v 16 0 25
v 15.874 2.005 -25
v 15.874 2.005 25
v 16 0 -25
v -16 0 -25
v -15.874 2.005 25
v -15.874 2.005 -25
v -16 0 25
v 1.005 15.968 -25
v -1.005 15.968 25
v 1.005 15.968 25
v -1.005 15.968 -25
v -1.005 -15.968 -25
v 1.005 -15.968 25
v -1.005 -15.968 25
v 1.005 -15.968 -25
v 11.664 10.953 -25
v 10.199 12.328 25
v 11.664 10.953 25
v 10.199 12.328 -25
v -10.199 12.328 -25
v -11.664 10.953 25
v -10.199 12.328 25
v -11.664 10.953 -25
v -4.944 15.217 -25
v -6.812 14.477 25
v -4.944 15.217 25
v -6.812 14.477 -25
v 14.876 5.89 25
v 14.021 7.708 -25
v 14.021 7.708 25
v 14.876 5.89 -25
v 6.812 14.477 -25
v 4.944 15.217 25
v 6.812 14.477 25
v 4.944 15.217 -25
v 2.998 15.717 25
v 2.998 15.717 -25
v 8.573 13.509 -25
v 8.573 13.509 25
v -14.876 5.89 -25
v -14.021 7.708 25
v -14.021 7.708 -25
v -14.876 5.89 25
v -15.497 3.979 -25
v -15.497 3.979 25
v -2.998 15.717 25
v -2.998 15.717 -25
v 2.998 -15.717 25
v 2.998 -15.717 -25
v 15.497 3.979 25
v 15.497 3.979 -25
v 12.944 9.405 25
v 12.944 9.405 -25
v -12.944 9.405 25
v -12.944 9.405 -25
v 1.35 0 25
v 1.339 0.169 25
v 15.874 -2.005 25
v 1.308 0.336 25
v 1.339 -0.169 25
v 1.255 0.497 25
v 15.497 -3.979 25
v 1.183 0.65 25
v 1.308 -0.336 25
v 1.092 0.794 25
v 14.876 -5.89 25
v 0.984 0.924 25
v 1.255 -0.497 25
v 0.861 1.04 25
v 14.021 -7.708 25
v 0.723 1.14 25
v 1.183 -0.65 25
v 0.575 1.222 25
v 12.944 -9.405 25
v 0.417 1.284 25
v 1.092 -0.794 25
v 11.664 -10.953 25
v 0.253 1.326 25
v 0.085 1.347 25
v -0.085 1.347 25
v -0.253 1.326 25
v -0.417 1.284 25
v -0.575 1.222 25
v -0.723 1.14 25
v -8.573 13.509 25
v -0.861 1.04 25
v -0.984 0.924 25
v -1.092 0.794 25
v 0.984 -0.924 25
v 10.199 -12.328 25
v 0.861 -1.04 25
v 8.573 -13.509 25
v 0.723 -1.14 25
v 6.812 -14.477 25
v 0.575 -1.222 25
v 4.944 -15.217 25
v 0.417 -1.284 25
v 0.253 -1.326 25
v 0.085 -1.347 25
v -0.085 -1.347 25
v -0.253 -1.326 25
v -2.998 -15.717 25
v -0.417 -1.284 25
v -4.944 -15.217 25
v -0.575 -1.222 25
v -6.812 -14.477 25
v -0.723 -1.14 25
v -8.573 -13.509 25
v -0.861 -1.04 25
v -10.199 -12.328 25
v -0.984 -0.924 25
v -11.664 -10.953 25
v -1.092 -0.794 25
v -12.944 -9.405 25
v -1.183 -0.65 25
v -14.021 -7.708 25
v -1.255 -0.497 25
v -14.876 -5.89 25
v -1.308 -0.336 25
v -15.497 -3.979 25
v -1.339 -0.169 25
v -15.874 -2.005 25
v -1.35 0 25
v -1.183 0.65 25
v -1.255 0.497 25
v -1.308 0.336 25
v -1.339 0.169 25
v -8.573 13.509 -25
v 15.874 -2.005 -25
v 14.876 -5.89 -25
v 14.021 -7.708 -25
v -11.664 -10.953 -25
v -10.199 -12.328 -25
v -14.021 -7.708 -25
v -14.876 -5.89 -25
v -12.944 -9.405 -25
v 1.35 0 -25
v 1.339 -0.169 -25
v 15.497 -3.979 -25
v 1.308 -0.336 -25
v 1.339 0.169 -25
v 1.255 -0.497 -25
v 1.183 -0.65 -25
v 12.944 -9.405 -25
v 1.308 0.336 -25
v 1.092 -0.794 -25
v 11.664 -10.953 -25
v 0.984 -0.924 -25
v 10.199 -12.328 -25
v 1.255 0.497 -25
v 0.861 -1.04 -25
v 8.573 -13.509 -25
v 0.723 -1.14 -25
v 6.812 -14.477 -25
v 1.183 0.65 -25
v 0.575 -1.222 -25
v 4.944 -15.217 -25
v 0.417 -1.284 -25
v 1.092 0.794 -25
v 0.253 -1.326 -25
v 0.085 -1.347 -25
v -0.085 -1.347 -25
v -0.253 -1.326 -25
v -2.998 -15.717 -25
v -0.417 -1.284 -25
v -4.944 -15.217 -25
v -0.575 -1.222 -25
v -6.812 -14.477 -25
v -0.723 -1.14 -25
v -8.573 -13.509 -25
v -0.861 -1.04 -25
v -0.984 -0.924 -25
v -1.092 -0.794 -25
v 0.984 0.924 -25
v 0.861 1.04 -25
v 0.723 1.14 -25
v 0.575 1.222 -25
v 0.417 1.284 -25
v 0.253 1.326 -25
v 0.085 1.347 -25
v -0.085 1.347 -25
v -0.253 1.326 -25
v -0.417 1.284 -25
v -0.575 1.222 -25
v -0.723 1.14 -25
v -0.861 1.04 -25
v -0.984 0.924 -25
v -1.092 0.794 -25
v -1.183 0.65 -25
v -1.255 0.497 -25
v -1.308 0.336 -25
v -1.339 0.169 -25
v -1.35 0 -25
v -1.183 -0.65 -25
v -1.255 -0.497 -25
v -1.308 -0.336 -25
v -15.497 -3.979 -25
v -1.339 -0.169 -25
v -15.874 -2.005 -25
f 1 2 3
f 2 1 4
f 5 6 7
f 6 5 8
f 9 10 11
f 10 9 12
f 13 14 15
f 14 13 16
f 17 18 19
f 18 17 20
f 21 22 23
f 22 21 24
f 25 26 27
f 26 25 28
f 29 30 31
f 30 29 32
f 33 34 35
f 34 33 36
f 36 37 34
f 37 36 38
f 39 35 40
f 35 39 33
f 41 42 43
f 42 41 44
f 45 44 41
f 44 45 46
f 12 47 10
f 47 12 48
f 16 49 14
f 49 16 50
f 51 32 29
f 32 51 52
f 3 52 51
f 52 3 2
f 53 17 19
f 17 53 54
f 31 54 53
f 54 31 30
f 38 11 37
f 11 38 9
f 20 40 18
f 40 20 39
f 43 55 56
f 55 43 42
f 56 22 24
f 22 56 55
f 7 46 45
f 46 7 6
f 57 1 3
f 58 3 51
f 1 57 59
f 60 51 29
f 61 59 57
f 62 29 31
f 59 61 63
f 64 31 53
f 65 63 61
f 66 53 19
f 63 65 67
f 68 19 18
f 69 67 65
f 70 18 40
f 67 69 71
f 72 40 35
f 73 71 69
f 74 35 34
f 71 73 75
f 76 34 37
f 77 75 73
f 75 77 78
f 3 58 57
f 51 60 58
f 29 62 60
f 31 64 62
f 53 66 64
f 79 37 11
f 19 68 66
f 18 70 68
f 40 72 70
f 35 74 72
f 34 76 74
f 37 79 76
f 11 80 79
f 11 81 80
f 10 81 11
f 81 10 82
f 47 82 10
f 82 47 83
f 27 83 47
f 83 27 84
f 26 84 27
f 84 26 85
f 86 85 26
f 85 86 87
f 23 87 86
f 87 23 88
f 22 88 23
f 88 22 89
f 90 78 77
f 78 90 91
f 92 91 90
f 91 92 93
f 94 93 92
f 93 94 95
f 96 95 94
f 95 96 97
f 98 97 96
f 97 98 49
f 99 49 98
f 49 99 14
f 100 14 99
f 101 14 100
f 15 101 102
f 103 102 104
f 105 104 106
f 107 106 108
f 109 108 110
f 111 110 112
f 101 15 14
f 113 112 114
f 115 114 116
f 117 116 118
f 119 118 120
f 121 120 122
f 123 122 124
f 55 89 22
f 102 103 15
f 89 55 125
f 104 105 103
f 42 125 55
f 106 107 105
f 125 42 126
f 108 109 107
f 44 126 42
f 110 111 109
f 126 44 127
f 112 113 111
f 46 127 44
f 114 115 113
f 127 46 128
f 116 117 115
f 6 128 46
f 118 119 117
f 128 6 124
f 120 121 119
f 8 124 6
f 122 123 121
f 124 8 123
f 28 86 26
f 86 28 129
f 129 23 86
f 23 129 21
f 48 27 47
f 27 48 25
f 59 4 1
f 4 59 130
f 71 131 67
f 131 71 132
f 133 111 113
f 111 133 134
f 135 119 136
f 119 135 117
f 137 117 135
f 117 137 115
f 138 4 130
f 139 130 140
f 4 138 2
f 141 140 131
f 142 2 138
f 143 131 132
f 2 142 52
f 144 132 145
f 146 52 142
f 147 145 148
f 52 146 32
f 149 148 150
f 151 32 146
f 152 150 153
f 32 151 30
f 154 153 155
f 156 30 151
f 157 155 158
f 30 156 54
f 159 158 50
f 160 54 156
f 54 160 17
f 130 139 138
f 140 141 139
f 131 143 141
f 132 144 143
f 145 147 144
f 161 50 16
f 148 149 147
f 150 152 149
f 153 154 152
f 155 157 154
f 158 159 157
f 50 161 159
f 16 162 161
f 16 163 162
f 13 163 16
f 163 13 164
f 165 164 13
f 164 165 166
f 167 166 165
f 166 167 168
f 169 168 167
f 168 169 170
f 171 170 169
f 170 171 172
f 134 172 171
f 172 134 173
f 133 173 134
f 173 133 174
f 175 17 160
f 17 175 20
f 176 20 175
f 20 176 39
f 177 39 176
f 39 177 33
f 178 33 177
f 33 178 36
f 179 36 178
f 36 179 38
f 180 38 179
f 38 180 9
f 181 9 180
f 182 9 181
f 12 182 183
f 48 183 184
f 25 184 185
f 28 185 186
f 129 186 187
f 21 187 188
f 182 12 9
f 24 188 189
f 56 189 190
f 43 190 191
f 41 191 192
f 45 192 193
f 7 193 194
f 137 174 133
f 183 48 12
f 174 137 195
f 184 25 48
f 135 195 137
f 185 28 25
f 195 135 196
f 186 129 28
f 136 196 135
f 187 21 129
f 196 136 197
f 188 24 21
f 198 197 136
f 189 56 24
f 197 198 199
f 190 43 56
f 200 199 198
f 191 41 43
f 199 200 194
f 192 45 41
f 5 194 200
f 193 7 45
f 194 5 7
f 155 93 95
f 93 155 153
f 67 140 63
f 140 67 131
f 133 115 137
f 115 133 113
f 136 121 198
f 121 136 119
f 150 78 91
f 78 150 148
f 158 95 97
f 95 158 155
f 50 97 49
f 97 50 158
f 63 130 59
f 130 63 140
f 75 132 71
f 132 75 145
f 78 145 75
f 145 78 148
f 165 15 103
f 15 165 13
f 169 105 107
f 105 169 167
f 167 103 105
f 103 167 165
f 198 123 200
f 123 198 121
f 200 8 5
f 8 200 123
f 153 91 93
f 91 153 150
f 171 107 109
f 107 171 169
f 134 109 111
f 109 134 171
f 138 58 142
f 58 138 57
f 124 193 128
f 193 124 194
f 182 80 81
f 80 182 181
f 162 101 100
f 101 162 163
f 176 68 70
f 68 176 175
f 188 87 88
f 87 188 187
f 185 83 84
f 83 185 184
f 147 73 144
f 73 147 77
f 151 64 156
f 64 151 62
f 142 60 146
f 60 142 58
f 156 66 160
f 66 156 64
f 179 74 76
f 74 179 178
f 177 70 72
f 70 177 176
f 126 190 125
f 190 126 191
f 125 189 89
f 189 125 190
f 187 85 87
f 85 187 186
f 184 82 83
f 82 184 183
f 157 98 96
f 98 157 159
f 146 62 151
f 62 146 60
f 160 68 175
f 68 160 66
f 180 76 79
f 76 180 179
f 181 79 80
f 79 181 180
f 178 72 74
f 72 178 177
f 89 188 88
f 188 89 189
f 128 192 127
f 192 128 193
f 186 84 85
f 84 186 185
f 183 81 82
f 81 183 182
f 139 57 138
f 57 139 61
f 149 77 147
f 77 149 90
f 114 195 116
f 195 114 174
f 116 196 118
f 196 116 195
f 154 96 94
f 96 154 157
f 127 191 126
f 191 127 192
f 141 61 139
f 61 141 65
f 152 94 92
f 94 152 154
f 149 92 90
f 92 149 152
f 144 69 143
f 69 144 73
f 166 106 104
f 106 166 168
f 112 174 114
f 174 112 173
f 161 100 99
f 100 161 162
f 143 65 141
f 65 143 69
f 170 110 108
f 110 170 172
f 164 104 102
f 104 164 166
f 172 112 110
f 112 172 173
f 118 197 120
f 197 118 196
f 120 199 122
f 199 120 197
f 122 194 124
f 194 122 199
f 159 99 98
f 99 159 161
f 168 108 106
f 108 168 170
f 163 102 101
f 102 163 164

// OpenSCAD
$fn = 50;


difference() {
	union() {
		translate(v = [0, 0, -25.0000000000]) {
			cylinder(h = 50, r = 16.0000000000);
		}
	}
	union() {
		translate(v = [0, 0, -100.0000000000]) {
			cylinder(h = 200, r = 1.3500000000);
		}
	}
}
